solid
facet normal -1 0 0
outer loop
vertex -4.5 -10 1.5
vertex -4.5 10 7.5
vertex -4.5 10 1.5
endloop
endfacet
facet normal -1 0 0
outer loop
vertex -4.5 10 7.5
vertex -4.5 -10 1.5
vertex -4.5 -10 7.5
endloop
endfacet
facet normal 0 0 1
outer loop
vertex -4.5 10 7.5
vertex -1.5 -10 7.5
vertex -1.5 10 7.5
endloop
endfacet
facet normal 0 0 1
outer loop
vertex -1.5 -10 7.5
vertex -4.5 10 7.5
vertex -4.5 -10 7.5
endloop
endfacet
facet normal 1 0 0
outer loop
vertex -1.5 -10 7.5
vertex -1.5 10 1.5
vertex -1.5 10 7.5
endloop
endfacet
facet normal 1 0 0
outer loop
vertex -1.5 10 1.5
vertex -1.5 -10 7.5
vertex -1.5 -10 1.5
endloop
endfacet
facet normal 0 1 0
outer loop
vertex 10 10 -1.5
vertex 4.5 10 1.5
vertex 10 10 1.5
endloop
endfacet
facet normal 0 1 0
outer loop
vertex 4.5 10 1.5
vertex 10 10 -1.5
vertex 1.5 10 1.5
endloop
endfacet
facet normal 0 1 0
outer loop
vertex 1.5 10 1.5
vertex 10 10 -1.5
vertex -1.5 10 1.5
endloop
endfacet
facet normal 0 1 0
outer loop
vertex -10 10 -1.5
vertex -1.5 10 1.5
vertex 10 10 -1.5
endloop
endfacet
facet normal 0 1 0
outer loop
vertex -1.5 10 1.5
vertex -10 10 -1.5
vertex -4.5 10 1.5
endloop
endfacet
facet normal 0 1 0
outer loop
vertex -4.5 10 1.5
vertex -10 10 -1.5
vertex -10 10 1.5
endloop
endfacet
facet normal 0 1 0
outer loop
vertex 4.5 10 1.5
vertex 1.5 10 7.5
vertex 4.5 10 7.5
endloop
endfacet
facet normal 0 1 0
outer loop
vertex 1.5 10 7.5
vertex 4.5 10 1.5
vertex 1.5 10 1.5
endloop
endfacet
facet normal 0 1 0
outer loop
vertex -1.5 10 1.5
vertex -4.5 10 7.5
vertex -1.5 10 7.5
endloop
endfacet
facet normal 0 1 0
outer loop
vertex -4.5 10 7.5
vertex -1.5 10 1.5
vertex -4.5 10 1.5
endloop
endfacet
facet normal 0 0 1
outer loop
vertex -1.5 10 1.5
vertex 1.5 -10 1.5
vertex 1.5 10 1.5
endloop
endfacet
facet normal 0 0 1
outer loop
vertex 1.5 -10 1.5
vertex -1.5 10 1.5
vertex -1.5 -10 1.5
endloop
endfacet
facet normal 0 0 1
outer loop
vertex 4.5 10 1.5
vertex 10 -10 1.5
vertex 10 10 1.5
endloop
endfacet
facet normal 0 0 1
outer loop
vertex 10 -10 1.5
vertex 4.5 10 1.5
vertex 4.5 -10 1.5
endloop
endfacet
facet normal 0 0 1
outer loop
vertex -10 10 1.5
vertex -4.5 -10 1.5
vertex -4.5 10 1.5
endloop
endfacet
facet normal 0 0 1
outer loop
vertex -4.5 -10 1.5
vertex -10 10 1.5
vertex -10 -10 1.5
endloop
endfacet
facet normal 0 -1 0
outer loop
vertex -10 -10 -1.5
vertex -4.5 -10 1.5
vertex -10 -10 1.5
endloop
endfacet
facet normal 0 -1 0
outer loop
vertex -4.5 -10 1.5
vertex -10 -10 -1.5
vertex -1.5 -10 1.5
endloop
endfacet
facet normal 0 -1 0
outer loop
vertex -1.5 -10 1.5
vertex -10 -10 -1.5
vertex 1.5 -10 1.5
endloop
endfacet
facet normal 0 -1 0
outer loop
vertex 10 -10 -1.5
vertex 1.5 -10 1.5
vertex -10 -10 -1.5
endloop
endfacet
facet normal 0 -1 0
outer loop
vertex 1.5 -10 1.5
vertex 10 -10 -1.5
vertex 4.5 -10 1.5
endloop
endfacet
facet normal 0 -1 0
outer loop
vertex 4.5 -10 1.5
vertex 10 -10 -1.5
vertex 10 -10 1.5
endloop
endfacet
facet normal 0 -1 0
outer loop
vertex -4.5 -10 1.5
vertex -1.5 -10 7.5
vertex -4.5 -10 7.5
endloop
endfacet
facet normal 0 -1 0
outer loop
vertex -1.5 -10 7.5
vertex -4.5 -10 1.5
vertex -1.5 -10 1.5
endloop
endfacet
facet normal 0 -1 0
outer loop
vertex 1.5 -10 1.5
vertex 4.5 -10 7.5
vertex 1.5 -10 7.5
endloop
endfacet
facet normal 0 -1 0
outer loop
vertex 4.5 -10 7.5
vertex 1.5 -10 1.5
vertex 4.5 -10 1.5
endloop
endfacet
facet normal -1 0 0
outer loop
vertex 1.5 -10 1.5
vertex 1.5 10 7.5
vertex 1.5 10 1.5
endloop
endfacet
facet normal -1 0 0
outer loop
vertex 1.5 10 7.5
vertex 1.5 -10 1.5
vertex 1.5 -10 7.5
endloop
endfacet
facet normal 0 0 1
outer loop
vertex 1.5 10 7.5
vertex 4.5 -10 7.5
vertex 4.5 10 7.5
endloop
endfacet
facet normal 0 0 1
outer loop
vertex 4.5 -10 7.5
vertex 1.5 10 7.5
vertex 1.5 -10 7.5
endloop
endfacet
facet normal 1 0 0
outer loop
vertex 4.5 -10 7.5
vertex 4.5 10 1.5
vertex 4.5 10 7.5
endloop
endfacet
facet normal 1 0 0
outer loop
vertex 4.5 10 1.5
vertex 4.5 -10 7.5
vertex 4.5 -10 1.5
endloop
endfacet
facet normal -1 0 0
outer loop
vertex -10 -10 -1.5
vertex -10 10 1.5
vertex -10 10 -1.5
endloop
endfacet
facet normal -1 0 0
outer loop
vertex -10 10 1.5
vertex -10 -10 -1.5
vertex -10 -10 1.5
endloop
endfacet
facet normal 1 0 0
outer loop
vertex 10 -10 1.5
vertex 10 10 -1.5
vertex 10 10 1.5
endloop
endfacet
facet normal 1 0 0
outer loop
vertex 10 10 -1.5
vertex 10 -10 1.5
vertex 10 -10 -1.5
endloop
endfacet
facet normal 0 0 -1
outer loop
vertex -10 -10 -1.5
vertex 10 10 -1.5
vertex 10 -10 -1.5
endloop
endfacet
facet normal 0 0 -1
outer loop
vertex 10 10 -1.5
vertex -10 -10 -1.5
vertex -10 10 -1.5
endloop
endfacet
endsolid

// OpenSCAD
cube([20,20,3],center=true);
for(x=[-1,1])translate([x*3,0,4.5])cube([3,20,6],center=true);
